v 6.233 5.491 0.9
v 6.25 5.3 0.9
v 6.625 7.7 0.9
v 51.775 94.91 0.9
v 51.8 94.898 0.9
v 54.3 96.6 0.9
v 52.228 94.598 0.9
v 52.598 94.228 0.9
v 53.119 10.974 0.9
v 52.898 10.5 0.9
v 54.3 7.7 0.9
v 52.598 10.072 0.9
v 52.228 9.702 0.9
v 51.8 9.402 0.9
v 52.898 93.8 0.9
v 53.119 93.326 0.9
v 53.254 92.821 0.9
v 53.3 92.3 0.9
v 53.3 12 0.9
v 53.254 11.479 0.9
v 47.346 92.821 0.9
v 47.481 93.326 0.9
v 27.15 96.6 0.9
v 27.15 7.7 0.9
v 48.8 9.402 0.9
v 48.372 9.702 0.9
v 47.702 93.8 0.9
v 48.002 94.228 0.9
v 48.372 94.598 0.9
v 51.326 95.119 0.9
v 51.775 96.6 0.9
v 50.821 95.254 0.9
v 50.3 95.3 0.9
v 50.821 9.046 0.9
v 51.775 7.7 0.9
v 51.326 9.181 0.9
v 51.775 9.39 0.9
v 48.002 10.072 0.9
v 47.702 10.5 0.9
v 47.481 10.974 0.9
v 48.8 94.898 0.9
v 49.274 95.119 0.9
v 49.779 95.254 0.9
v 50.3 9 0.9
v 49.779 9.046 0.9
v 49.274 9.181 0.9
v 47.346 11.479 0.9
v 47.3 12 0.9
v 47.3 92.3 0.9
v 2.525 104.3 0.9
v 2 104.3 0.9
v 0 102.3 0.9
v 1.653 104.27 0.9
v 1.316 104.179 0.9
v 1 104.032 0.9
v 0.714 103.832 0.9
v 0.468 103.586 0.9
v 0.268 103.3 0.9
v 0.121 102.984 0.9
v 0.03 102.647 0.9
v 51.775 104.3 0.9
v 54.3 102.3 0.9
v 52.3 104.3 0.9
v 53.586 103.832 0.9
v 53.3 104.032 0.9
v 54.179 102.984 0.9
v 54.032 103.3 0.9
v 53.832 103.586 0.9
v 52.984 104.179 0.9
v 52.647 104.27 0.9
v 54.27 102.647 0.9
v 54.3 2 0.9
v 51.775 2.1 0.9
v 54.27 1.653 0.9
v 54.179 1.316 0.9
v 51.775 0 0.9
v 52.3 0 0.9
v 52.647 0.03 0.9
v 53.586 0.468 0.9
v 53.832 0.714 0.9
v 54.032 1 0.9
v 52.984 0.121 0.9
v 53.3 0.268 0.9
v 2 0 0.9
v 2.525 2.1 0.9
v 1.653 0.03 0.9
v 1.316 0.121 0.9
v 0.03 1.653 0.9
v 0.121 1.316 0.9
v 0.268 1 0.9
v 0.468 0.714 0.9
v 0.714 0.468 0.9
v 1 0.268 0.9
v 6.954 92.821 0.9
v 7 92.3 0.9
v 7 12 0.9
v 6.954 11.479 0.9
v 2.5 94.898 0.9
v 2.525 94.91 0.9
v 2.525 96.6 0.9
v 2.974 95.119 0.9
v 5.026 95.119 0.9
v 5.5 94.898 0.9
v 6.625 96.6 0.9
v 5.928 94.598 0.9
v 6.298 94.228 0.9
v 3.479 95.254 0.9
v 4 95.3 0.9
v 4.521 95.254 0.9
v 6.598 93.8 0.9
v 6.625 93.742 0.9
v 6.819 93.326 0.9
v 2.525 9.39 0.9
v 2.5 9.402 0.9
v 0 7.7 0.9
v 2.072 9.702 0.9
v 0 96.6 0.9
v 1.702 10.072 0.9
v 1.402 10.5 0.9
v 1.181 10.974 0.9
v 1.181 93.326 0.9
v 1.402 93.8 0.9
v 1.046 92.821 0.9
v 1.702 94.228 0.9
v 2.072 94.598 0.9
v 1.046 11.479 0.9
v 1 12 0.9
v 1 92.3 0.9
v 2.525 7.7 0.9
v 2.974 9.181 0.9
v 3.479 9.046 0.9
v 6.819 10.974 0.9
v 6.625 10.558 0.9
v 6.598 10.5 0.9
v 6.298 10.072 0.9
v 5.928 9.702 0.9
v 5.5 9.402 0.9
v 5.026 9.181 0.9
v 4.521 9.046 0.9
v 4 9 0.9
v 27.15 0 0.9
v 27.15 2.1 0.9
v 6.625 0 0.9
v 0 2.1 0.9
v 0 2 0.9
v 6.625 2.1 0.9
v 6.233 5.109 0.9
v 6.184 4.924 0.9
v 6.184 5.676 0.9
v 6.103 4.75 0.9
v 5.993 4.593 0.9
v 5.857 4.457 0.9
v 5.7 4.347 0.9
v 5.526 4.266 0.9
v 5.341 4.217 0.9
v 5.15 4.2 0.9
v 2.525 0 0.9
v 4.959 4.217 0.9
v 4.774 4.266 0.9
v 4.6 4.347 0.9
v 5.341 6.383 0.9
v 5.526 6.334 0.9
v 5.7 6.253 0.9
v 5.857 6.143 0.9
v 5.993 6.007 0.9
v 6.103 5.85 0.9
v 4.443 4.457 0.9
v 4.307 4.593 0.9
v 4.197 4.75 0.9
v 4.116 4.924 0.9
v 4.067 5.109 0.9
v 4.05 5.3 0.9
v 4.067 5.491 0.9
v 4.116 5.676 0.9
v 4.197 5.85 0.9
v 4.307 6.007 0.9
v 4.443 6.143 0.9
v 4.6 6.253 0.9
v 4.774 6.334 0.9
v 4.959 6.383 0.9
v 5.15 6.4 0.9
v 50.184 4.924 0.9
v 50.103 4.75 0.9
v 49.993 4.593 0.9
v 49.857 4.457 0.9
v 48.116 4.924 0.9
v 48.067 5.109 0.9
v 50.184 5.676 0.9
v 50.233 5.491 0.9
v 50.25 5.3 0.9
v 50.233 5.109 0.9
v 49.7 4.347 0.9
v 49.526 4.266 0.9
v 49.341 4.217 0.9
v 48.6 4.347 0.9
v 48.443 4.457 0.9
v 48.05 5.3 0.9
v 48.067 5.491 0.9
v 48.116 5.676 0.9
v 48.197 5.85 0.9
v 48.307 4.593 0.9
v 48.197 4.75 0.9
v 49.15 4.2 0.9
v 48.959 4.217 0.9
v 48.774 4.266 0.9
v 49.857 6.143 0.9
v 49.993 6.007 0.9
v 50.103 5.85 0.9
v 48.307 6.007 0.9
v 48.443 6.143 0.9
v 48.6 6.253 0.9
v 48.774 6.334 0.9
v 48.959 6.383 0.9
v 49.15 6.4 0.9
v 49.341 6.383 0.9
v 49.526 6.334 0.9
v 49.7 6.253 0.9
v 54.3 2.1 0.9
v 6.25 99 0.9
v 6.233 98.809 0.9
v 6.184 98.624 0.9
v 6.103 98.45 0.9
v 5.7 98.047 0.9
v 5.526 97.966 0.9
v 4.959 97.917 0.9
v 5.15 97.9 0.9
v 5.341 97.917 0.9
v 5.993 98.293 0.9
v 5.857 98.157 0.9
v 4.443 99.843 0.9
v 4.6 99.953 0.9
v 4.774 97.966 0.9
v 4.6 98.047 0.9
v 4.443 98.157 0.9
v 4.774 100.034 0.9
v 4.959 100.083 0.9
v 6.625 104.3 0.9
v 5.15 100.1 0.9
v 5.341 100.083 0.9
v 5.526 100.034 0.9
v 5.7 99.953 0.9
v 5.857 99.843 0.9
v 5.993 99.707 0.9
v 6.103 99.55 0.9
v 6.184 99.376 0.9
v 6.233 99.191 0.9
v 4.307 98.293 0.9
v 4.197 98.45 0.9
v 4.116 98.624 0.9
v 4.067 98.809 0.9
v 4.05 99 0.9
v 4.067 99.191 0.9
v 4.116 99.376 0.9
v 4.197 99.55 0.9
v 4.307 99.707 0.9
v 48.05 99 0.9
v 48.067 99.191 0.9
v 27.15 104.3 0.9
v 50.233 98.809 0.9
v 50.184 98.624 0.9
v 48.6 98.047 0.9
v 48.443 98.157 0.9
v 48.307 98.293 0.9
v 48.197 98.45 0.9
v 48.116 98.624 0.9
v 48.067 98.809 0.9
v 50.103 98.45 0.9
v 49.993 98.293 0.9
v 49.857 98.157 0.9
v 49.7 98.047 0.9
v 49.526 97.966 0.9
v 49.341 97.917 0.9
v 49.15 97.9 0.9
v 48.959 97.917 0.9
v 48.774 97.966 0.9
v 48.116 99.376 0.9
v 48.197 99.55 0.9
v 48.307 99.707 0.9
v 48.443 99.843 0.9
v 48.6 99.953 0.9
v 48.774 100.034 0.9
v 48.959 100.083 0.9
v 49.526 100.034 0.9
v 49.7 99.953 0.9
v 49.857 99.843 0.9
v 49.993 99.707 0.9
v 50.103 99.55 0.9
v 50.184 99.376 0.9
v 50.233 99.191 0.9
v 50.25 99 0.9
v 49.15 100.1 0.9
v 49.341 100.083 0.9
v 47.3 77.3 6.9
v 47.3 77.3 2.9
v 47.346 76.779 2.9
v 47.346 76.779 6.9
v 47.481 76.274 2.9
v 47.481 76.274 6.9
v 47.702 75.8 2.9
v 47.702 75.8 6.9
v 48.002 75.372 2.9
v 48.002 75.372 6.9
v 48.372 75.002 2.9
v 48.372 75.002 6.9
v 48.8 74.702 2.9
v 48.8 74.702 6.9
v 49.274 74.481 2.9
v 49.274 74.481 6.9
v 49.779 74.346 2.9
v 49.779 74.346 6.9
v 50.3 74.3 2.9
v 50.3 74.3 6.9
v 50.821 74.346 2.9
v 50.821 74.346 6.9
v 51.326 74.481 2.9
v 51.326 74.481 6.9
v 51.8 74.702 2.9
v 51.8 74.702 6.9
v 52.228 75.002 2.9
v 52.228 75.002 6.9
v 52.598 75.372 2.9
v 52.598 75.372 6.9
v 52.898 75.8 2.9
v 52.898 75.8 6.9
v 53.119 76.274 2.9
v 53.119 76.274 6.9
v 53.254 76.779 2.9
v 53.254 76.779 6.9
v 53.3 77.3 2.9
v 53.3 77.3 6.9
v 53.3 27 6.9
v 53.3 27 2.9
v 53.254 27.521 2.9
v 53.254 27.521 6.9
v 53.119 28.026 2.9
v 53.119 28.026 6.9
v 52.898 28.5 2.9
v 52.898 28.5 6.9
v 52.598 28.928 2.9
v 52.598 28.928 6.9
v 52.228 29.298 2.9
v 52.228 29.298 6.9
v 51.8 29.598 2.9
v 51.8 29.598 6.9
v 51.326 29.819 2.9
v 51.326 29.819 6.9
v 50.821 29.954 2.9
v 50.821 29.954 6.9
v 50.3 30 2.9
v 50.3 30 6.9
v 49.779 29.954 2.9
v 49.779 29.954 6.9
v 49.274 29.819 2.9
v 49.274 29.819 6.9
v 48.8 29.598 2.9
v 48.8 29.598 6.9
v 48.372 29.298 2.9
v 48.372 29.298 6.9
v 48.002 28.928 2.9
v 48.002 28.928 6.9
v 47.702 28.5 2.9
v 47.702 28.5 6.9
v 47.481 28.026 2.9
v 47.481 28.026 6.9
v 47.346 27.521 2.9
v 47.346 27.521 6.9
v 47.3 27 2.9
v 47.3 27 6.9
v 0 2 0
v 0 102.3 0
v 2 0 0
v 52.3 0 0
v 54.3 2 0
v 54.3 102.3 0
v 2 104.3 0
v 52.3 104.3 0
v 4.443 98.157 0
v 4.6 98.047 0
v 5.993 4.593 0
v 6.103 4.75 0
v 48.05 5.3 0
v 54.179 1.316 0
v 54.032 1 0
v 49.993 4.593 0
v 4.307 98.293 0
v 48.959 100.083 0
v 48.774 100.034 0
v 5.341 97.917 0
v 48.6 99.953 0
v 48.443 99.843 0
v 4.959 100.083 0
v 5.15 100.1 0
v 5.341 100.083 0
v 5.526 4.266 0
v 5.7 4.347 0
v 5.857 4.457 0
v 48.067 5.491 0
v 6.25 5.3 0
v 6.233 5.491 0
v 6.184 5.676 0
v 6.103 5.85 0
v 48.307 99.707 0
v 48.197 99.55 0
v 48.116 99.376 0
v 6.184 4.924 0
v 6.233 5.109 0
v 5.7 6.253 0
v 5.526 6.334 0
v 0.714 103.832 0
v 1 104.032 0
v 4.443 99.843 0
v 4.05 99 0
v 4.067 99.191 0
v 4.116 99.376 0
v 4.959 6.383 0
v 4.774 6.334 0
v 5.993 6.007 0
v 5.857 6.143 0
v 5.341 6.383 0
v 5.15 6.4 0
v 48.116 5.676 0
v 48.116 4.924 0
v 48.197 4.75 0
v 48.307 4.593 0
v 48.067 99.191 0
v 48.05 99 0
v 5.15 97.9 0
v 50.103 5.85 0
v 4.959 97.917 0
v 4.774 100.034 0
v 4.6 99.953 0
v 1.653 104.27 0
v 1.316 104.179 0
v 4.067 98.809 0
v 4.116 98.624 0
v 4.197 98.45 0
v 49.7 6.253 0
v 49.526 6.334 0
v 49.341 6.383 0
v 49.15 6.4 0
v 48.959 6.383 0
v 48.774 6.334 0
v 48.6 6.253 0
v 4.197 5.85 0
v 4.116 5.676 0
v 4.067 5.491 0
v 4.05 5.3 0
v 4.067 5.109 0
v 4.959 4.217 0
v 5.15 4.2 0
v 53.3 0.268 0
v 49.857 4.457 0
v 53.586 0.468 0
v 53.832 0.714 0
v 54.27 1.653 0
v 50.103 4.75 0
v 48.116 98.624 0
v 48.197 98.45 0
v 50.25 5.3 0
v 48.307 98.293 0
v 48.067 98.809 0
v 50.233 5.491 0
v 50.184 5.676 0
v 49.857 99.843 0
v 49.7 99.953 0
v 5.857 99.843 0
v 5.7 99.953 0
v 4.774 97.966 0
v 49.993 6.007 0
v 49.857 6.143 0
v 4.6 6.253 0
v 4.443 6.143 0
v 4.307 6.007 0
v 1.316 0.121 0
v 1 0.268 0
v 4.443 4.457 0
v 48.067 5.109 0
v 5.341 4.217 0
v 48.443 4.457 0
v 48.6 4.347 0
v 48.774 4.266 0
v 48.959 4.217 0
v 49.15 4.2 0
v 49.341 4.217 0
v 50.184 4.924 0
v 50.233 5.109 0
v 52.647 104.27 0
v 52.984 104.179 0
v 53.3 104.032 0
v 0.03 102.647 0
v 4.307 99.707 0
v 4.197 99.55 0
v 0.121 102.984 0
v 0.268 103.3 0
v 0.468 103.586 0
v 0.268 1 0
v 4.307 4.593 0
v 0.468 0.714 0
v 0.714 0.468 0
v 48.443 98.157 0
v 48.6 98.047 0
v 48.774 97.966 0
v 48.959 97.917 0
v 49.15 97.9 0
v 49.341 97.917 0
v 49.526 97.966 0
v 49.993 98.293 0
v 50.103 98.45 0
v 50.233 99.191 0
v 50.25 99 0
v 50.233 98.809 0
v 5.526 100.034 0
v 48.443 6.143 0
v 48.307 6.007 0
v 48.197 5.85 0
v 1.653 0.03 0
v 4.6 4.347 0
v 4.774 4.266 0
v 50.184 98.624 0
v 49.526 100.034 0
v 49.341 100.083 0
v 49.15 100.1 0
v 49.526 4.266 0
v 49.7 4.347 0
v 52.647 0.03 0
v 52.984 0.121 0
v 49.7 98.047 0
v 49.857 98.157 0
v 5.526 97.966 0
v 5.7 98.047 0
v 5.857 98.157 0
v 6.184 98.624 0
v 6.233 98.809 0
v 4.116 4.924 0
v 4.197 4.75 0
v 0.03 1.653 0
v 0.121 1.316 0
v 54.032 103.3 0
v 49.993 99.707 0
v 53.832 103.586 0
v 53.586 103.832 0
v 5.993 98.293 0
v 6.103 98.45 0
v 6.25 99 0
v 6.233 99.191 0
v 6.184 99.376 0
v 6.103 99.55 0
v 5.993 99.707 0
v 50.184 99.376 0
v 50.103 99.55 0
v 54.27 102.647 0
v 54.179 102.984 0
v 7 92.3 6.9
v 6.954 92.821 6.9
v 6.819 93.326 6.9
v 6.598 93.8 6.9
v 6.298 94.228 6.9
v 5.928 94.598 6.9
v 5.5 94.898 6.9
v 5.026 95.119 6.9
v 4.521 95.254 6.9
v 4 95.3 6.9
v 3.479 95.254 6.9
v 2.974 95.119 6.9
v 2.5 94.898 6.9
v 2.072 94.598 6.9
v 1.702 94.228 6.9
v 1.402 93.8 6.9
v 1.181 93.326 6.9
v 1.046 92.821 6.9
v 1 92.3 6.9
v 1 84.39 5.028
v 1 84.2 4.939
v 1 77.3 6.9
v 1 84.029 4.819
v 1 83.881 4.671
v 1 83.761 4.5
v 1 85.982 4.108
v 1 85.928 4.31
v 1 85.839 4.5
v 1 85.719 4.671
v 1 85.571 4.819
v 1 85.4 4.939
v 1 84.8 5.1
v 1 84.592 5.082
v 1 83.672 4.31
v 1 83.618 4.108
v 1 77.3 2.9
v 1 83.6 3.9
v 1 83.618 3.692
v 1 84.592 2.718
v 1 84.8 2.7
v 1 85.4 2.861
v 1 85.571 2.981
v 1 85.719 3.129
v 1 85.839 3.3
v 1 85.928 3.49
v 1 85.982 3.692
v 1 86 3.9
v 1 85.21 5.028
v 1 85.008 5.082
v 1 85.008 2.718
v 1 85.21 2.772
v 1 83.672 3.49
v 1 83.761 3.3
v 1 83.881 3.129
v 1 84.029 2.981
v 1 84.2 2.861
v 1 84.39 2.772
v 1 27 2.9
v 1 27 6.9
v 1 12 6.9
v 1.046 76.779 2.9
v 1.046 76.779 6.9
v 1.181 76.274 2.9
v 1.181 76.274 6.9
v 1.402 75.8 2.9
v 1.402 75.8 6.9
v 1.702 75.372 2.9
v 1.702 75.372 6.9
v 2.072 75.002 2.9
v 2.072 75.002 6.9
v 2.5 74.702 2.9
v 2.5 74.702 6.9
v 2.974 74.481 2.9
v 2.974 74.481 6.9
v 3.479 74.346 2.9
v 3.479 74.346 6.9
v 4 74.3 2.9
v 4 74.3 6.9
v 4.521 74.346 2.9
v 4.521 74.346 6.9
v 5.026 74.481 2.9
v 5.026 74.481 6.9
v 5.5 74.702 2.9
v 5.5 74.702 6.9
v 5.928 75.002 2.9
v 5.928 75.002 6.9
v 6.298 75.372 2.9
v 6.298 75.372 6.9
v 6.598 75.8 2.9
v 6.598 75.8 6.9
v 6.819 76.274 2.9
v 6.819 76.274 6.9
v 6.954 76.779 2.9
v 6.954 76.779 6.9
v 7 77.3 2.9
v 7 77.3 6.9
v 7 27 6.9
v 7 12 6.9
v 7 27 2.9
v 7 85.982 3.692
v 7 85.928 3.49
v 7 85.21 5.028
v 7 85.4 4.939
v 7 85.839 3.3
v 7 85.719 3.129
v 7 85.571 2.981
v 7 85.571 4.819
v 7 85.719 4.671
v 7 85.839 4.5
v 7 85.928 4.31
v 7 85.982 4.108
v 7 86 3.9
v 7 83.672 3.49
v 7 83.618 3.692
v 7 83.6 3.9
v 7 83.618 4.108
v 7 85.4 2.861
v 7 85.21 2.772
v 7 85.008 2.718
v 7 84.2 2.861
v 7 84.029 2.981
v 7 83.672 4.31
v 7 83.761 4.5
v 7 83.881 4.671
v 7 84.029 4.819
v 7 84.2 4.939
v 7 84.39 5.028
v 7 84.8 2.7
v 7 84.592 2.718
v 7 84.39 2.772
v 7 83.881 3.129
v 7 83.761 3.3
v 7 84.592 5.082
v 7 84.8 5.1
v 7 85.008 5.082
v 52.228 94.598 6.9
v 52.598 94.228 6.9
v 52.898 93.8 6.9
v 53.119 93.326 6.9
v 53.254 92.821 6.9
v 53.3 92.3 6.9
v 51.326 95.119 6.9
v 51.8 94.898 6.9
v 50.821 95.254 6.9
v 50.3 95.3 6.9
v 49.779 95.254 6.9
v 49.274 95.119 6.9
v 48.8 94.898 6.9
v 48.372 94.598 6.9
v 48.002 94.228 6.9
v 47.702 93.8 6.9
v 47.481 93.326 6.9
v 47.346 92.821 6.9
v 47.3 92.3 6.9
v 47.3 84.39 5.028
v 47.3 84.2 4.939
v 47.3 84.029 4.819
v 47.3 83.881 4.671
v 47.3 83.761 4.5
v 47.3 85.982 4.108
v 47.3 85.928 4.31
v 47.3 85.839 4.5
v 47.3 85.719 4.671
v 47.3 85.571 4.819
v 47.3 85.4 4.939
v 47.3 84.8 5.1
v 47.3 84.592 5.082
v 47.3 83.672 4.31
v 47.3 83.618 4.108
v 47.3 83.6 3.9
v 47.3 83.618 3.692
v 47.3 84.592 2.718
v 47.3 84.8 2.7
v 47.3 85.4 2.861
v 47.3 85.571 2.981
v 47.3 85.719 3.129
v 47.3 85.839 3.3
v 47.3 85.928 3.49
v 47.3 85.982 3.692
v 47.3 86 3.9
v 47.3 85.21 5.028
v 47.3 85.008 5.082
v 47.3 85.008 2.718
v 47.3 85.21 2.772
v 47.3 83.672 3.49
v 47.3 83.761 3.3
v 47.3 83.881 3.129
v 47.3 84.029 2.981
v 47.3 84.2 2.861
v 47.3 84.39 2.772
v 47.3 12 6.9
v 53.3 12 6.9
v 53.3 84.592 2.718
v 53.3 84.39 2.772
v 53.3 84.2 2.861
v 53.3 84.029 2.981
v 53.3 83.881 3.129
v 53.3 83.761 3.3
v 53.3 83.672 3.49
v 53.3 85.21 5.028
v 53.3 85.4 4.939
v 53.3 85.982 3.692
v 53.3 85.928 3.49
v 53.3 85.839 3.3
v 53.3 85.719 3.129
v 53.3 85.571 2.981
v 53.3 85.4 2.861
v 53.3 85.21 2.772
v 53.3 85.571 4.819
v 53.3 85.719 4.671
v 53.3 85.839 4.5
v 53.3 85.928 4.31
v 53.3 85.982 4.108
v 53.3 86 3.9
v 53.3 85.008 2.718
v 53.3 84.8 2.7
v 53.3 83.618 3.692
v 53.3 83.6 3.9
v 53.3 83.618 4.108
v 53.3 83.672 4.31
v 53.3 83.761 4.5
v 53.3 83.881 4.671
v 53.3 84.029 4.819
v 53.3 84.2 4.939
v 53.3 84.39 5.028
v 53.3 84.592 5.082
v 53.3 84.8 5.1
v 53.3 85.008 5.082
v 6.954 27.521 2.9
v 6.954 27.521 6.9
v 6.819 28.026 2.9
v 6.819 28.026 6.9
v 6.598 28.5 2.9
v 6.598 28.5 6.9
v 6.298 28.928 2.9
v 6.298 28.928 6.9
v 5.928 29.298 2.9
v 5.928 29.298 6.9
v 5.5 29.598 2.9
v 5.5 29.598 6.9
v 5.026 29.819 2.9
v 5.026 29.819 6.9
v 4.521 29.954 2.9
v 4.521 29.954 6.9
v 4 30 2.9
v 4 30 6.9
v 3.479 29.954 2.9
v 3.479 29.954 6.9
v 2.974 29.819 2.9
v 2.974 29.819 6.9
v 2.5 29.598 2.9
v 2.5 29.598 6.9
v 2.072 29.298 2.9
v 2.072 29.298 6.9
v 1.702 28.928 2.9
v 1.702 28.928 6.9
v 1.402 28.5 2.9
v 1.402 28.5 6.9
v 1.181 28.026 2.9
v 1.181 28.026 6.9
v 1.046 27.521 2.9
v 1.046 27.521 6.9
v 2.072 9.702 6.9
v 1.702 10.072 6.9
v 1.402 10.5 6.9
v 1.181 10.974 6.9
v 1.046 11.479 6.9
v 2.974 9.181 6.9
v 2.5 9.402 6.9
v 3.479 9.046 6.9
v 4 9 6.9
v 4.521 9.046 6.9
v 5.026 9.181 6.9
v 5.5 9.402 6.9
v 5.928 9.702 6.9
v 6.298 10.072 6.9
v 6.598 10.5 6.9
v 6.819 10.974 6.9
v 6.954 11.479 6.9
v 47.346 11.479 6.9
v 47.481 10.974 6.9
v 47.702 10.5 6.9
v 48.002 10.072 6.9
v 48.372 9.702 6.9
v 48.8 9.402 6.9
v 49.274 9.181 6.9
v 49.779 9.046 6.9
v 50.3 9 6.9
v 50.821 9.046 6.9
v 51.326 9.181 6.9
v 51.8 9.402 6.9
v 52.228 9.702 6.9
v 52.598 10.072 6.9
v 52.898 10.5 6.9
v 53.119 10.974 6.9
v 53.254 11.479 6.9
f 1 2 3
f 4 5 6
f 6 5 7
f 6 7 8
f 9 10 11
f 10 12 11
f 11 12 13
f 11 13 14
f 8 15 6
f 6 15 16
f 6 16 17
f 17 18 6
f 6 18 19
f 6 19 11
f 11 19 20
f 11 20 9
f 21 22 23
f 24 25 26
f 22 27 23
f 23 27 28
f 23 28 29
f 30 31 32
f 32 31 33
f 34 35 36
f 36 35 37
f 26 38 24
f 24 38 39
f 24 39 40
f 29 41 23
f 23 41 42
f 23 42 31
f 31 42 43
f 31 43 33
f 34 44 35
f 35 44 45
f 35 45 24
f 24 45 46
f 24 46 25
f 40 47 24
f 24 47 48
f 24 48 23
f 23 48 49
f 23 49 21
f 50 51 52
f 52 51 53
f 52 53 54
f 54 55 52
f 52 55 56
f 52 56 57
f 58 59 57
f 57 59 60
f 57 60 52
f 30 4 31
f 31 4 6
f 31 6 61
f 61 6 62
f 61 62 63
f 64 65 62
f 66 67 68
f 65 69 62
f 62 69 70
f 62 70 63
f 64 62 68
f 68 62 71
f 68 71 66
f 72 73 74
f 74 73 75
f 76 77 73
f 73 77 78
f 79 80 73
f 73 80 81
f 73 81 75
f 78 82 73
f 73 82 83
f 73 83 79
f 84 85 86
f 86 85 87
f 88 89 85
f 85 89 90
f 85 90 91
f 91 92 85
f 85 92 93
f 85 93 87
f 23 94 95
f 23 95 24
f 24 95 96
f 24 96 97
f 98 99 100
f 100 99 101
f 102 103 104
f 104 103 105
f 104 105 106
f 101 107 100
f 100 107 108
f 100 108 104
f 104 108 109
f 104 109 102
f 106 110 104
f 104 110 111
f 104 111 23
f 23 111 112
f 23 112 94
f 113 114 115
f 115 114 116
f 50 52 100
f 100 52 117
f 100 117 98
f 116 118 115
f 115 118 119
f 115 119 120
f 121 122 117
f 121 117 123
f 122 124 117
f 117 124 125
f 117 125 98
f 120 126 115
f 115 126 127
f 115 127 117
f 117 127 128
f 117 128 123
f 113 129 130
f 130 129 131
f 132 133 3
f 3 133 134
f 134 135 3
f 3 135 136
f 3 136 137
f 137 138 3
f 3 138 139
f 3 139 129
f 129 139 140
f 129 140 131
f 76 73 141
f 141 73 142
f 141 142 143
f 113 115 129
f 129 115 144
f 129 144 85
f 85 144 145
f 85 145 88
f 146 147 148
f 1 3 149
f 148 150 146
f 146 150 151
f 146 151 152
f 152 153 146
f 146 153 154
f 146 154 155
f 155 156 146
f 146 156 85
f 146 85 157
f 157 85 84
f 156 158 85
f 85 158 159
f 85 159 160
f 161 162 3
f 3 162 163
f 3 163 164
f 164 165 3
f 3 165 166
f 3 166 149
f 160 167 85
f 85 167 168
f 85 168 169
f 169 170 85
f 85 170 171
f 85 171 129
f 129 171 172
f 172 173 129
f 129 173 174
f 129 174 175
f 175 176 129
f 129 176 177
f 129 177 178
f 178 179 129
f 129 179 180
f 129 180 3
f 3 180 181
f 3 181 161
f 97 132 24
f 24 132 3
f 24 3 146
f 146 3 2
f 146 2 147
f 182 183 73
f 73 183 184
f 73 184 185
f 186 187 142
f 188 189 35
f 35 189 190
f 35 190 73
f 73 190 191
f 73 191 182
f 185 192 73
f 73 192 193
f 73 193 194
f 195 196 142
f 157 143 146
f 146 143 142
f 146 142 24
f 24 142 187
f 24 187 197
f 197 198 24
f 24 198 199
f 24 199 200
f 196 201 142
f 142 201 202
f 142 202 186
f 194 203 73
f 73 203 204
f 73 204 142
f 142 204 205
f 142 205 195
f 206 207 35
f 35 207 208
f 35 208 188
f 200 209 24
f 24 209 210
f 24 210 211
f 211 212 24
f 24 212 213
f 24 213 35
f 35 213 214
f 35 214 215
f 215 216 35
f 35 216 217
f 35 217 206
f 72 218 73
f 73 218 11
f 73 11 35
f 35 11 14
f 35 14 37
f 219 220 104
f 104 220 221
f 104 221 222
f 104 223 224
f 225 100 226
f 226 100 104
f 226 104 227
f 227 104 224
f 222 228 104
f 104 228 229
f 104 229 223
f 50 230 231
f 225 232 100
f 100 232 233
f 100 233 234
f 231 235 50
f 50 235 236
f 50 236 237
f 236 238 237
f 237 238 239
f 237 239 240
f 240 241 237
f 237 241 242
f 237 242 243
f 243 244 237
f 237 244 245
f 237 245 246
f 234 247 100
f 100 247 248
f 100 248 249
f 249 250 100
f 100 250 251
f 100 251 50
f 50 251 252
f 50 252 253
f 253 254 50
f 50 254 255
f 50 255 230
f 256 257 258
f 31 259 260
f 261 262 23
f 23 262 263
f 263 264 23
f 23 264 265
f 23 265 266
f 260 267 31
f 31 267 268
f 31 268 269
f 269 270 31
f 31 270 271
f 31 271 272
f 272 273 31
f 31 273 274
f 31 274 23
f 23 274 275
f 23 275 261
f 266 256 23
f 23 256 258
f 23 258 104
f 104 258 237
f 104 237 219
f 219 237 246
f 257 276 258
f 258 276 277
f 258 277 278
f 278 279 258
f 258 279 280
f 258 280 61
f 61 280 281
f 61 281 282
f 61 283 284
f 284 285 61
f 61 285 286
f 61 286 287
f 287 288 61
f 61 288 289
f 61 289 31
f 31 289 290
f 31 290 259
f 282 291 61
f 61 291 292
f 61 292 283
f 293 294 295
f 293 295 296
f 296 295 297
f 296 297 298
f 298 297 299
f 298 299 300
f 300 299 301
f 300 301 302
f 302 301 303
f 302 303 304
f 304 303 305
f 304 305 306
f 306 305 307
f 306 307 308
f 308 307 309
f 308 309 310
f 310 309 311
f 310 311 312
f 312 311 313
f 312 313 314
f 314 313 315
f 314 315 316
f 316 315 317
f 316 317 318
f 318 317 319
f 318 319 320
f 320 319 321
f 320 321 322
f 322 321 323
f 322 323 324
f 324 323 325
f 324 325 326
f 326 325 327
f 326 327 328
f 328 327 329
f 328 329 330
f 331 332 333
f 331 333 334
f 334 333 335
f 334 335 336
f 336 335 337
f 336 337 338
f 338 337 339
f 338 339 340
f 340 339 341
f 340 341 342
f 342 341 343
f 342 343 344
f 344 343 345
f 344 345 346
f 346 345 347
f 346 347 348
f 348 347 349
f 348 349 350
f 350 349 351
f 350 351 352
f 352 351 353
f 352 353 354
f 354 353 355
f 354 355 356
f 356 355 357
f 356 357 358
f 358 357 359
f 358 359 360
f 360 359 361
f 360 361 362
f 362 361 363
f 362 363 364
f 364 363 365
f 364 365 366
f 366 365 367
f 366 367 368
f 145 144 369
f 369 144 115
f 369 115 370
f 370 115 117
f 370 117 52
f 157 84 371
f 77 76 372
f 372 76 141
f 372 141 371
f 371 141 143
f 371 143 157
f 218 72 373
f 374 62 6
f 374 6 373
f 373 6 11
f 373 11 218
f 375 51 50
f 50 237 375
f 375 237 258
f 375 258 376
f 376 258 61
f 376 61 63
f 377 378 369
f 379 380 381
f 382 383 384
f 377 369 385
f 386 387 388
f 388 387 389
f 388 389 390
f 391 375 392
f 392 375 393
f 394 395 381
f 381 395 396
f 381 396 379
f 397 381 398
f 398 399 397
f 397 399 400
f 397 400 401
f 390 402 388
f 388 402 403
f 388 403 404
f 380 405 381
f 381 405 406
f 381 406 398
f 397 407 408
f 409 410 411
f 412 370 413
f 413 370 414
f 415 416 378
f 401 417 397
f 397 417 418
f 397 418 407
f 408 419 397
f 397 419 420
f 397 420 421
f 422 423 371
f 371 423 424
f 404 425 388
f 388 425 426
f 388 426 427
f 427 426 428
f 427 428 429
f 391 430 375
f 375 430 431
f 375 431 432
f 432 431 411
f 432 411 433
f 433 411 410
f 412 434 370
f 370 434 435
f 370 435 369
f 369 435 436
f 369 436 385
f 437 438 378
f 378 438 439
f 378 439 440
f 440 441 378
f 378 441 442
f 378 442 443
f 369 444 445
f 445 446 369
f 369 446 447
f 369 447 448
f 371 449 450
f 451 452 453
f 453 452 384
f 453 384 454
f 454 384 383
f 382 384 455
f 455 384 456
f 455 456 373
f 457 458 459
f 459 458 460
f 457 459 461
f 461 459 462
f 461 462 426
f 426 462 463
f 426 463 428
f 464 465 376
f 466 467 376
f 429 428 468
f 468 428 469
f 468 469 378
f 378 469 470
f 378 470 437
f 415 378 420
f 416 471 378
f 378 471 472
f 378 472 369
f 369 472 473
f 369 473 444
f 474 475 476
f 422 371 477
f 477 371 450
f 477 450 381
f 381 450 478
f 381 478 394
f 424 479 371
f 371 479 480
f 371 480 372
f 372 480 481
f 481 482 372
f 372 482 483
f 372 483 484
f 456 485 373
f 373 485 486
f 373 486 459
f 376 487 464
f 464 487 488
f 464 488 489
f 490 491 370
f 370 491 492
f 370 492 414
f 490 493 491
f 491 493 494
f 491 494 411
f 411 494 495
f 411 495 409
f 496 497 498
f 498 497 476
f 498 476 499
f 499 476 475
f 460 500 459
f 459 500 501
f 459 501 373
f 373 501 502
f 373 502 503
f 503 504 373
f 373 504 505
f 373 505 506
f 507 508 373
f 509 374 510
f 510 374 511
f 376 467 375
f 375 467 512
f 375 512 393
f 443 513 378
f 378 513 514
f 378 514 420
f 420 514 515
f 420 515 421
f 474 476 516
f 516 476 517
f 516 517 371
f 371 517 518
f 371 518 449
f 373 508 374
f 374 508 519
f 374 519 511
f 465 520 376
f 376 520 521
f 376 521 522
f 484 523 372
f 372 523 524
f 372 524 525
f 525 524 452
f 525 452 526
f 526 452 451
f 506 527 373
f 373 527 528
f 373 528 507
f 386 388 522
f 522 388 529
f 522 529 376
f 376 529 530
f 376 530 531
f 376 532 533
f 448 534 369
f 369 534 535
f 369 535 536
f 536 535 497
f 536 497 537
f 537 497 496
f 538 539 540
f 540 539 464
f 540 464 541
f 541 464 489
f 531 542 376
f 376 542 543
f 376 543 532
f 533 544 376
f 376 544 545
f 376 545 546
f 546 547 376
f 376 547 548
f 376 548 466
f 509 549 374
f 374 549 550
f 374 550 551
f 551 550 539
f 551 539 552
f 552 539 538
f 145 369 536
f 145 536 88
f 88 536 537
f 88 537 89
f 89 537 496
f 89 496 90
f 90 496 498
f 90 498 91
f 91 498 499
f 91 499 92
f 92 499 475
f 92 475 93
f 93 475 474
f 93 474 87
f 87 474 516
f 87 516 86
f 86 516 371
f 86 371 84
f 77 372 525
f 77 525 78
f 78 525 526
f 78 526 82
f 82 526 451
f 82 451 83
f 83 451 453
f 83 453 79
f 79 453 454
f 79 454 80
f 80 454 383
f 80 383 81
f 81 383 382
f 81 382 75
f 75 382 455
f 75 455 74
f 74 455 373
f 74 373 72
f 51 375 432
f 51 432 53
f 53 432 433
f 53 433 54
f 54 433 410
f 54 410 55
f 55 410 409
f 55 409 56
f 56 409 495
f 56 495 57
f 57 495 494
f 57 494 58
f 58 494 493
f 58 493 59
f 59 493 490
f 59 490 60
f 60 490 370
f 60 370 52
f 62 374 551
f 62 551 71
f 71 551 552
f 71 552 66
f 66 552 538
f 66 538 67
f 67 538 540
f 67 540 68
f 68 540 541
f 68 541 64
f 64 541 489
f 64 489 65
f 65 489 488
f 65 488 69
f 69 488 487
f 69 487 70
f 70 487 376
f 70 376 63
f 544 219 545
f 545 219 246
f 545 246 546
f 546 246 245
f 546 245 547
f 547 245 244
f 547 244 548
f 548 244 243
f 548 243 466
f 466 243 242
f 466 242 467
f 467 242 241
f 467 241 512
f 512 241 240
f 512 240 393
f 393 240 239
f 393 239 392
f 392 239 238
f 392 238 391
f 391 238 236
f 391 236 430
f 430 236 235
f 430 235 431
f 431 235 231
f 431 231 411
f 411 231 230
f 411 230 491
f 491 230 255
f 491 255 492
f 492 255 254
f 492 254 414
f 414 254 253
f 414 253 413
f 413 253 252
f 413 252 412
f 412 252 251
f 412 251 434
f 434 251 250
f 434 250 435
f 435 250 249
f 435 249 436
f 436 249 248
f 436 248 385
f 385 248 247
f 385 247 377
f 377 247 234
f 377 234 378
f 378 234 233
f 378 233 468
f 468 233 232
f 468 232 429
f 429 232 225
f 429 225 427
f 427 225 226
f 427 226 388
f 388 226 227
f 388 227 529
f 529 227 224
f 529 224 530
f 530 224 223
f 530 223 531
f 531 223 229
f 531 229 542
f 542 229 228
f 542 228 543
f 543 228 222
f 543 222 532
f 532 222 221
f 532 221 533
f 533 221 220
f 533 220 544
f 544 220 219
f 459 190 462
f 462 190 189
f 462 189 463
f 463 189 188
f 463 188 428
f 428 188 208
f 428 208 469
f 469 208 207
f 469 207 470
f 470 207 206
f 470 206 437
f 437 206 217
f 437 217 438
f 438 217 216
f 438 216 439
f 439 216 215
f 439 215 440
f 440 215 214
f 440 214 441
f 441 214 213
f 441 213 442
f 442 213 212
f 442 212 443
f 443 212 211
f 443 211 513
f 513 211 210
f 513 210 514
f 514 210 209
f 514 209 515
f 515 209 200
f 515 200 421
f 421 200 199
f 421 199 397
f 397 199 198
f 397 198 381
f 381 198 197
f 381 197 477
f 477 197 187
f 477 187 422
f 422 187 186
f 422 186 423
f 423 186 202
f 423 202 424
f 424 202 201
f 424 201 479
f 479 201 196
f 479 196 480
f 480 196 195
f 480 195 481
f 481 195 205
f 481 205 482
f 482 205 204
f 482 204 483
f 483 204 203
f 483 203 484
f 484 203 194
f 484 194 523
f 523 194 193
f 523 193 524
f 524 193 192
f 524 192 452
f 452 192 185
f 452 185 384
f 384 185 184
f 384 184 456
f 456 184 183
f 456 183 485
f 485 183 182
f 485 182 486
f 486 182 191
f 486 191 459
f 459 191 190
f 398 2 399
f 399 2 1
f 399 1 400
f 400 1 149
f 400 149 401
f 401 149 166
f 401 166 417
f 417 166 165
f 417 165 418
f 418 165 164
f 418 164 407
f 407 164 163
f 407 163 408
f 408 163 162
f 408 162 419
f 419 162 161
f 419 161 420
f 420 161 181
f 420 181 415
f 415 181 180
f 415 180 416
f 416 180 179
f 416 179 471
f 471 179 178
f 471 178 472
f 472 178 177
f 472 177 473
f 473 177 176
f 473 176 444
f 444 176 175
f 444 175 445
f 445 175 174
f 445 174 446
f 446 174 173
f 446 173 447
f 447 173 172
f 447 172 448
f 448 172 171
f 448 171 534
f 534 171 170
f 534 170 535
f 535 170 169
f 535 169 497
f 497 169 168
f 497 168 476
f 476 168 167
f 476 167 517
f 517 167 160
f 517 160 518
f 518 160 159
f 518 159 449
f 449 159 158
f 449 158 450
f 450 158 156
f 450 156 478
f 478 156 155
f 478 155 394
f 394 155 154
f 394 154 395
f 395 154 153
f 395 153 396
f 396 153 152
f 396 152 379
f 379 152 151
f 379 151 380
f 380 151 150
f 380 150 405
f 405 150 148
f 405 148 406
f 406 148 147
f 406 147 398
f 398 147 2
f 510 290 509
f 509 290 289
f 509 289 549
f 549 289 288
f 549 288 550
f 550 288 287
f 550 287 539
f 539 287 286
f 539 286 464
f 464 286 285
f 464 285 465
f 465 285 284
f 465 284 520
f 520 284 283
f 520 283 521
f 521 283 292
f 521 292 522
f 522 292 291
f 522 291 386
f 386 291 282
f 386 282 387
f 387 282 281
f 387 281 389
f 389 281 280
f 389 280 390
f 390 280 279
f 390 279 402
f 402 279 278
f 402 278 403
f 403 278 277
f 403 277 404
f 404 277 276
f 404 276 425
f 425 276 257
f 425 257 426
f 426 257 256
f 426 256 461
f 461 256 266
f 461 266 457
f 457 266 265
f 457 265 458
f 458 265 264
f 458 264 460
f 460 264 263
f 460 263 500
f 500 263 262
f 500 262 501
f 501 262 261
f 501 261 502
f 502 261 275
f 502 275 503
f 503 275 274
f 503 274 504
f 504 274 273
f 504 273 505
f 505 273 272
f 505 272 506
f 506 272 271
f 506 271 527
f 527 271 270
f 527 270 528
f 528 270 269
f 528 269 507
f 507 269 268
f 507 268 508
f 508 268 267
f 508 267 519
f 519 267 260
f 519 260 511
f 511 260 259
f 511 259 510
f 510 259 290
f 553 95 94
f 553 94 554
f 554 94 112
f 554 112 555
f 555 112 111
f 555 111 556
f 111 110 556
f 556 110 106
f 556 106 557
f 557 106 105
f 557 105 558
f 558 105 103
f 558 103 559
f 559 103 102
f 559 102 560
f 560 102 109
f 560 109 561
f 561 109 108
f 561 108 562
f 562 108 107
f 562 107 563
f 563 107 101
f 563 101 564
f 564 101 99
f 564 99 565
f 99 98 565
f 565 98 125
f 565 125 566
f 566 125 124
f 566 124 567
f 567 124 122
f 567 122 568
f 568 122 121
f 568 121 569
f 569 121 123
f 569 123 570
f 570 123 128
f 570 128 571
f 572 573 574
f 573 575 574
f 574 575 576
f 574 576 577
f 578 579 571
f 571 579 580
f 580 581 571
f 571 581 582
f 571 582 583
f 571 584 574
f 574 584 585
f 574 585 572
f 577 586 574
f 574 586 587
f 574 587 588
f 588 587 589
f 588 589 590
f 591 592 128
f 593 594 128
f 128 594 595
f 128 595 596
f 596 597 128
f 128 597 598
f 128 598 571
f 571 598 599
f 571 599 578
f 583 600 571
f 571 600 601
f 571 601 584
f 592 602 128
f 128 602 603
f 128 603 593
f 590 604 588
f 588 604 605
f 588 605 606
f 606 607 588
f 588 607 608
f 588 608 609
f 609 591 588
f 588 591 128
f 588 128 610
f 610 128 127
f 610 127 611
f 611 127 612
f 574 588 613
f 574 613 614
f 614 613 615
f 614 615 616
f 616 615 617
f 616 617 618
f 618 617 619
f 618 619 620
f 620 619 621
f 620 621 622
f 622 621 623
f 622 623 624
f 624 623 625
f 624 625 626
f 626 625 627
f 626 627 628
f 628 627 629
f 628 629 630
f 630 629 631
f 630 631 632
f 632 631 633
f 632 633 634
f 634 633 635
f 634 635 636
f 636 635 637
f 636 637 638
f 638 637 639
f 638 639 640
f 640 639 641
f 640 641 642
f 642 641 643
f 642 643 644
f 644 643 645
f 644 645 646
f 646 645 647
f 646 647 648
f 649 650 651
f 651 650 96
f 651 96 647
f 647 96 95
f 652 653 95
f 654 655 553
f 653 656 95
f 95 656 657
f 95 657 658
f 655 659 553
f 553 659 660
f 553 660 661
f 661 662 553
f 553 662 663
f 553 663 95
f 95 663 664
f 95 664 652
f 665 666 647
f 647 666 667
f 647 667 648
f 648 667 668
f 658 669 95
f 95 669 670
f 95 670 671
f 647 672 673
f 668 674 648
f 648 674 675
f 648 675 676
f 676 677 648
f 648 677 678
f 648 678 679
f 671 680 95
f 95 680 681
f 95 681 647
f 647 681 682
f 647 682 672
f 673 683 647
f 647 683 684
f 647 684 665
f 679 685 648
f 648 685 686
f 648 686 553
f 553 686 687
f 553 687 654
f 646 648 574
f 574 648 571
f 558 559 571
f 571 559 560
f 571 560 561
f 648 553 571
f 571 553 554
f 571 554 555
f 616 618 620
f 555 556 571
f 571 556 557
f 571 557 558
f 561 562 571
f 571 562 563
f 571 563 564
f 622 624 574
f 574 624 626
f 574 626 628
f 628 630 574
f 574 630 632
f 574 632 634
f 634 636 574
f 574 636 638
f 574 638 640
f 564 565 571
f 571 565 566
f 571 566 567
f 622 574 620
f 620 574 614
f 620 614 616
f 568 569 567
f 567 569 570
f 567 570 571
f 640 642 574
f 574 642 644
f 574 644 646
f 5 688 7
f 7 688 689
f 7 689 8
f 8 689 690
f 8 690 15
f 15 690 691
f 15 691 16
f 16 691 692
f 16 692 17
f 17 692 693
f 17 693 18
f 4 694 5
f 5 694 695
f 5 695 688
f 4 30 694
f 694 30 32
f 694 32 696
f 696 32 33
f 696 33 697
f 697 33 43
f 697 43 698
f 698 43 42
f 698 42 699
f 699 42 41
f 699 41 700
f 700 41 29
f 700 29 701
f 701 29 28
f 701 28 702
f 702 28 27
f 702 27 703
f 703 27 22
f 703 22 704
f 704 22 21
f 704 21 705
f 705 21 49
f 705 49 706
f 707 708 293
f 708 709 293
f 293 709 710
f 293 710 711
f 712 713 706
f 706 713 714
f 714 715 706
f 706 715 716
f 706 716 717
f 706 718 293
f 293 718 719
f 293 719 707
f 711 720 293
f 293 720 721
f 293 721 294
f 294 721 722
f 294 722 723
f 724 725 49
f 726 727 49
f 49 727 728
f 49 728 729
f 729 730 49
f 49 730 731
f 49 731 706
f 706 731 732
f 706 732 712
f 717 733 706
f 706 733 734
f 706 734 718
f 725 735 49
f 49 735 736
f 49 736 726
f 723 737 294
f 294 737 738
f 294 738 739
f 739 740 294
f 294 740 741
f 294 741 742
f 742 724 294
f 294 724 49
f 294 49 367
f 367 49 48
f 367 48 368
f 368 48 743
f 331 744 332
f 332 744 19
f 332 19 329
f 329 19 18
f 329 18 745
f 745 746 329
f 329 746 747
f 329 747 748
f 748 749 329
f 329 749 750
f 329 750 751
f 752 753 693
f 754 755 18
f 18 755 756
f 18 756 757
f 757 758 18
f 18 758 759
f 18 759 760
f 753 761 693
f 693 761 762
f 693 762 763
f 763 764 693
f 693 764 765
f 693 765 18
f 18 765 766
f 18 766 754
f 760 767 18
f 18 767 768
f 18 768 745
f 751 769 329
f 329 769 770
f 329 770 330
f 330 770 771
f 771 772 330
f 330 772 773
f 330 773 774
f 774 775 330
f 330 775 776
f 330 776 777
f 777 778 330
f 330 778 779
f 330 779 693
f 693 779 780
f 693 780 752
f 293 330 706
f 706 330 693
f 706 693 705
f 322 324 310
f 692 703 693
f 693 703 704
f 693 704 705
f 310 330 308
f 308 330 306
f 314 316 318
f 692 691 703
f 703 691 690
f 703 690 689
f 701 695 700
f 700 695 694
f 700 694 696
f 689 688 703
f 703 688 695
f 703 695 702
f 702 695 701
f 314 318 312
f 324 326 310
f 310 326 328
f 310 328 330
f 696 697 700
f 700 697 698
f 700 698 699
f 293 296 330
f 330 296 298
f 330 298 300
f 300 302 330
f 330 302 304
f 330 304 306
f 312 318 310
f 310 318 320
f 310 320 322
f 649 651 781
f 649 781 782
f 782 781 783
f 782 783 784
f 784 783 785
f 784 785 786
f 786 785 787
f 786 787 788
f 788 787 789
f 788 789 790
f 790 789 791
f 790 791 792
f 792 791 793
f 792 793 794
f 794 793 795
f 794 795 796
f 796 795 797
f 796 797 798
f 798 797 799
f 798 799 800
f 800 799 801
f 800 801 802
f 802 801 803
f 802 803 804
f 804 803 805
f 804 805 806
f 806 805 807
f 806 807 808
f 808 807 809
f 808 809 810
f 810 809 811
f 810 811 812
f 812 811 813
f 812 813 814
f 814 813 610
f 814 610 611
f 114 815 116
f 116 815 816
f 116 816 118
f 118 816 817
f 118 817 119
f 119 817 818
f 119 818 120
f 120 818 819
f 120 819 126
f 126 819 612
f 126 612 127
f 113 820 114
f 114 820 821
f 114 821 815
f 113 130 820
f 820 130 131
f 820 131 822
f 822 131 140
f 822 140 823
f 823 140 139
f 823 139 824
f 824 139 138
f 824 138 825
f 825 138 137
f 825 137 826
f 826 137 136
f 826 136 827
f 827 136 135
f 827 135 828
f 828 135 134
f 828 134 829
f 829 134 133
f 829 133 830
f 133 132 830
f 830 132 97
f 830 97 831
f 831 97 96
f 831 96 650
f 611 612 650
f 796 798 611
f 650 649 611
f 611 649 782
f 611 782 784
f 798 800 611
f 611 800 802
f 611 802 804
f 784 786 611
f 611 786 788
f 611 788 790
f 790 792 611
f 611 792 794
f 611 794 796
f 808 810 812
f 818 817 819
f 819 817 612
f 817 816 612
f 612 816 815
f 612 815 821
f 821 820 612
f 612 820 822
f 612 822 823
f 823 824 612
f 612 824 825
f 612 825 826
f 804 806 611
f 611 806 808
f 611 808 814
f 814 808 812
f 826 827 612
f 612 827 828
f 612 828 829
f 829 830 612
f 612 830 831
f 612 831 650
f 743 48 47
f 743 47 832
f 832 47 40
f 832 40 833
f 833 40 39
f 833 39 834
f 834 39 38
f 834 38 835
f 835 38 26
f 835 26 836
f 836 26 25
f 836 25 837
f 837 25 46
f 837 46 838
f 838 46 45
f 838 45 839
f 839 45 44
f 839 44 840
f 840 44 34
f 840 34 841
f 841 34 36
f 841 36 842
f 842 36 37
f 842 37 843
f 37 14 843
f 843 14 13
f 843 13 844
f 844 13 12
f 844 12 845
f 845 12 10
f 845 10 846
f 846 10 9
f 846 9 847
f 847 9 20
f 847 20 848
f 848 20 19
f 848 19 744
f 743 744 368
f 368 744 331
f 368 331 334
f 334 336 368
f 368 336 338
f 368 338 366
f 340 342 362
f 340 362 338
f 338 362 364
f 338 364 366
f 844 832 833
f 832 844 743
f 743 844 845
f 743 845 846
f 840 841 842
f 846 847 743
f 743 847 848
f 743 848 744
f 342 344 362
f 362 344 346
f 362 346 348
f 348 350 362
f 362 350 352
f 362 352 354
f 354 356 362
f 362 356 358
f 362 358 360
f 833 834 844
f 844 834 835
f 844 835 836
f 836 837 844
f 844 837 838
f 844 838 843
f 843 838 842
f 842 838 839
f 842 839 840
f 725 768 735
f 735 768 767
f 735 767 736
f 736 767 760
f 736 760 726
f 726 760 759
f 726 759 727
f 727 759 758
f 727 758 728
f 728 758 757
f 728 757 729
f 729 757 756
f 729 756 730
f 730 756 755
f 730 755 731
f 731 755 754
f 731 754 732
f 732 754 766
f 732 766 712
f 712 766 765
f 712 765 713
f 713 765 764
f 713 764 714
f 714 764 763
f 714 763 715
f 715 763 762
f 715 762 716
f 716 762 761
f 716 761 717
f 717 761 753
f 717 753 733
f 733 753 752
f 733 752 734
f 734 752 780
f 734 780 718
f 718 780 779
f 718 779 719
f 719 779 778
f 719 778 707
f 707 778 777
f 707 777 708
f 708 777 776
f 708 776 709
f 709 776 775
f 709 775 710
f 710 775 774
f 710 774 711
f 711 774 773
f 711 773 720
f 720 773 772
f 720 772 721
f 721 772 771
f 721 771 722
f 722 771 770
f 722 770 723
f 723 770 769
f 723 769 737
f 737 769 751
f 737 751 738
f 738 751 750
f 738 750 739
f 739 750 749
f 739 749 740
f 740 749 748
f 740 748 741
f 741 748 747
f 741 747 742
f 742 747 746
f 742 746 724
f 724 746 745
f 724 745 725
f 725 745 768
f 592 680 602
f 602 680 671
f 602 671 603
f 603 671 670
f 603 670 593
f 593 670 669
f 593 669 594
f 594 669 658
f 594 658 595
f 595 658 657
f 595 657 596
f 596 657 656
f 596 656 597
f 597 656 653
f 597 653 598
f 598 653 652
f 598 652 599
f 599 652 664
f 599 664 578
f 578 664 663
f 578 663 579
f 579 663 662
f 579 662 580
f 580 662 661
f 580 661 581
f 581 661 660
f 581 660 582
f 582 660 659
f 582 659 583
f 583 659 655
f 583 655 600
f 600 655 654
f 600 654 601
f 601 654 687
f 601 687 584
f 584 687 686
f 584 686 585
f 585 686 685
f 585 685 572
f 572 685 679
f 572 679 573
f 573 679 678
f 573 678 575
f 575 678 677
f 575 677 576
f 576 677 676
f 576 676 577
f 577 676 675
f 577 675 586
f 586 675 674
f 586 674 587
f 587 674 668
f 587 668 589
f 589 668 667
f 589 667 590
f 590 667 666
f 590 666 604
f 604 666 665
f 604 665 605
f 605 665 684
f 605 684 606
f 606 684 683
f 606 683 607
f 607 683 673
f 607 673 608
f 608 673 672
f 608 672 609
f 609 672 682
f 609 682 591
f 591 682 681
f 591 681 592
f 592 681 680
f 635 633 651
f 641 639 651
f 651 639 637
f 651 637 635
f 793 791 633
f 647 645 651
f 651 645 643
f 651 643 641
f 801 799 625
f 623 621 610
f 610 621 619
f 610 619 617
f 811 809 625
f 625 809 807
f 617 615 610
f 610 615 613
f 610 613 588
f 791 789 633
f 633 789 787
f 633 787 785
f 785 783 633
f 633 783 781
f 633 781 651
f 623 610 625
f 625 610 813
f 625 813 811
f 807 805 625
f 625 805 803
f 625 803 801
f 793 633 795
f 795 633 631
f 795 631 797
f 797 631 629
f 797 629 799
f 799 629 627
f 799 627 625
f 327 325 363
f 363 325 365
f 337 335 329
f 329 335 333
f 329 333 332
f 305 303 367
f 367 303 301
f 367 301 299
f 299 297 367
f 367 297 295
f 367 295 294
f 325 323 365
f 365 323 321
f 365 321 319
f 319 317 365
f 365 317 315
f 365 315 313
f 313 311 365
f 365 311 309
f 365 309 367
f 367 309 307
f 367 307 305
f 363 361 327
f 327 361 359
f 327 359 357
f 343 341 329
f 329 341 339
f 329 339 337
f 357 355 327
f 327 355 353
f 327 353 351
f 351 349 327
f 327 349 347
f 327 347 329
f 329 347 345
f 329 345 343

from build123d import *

# Parameters (mm, degrees)
SKICA1_W                      = 54.3
SKICA1_H                      = 104.3
P_IDAT_VYSUNUT_M1_DEPTH       = 0.9
ZAOBLIT1_R                    = 2
SKICA2_R                      = 1.1
ODEBRAT_VYSUNUT_M1_DEPTH      = 0.9
P_IDAT_VYSUNUT_M2_DEPTH       = 6
ODEBRAT_VYSUNUT_M2_DEPTH      = 118.332817234
ODEBRAT_VYSUNUT_M2_DEPTH_BACK = 118.332817234
SKICA4_R                      = 1.2
SKICA5_W                      = 6
SKICA5_H                      = 50.3
P_IDAT_VYSUNUT_M3_DEPTH       = 2


with BuildPart() as part:
    # Skica1 → Přidat vysunutím1 (new body)
    with BuildSketch(Plane.XY):
        with Locations((27.15, 52.15)):
            Rectangle(SKICA1_W, SKICA1_H)
    extrude(amount=P_IDAT_VYSUNUT_M1_DEPTH)

    # Zaoblit1
    zaoblit1_edges = [part.edges().sort_by_distance(p)[0] for p in [
        (0, 104.3, 0.45),
        (54.3, 104.3, 0.45),
        (54.3, 0, 0.45),
        (0, 0, 0.45),
    ]]
    fillet(zaoblit1_edges, radius=ZAOBLIT1_R)

    # Skica2 → Odebrat vysunutím1 (cut)
    with BuildSketch(Plane.XY.offset(0.9)):
        with Locations((5.15, 99)):
            Circle(SKICA2_R)
        with Locations((49.15, 99)):
            Circle(SKICA2_R)
        with Locations((5.15, 5.3)):
            Circle(SKICA2_R)
        with Locations((49.15, 5.3)):
            Circle(SKICA2_R)
    extrude(amount=-ODEBRAT_VYSUNUT_M1_DEPTH, mode=Mode.SUBTRACT)

    # Skica3 → Přidat vysunutím2 (add)
    with BuildSketch(Plane.XY.offset(0.9)):
        with BuildLine():
            Line((7, 92.3), (7, 77.3))
            ThreePointArc((7, 77.3), (4, 74.3), (1, 77.3))
            Line((1, 77.3), (1, 92.3))
            ThreePointArc((1, 92.3), (4, 95.3), (7, 92.3))
        make_face()
        with BuildLine():
            Line((53.3, 92.3), (53.3, 77.3))
            ThreePointArc((53.3, 77.3), (50.3, 74.3), (47.3, 77.3))
            Line((47.3, 77.3), (47.3, 92.3))
            ThreePointArc((47.3, 92.3), (50.3, 95.3), (53.3, 92.3))
        make_face()
        with BuildLine():
            Line((7, 27), (7, 12))
            ThreePointArc((7, 12), (4, 9), (1, 12))
            Line((1, 12), (1, 27))
            ThreePointArc((1, 27), (4, 30), (7, 27))
        make_face()
        with BuildLine():
            Line((53.3, 27), (53.3, 12))
            ThreePointArc((53.3, 12), (50.3, 9), (47.3, 12))
            Line((47.3, 12), (47.3, 27))
            ThreePointArc((47.3, 27), (50.3, 30), (53.3, 27))
        make_face()
    extrude(amount=P_IDAT_VYSUNUT_M2_DEPTH)

    # Skica4 → Odebrat vysunutím2 (cut, two sides: drawn at the far end of the back side and taken through both)
    with BuildSketch(Plane(origin=(53.3, 0, 0), x_dir=(0, 0, -1), z_dir=(1, 0, 0)).offset(-ODEBRAT_VYSUNUT_M2_DEPTH_BACK)):
        with Locations((-3.9, 84.8)):
            Circle(SKICA4_R)
    extrude(amount=ODEBRAT_VYSUNUT_M2_DEPTH + ODEBRAT_VYSUNUT_M2_DEPTH_BACK, mode=Mode.SUBTRACT)

    # Skica5 → Přidat vysunutím3 (add)
    with BuildSketch(Plane.XY.offset(0.9)):
        with Locations((4, 52.15)):
            Rectangle(SKICA5_W, SKICA5_H)
        with Locations((50.3, 52.15)):
            Rectangle(SKICA5_W, SKICA5_H)
    extrude(amount=P_IDAT_VYSUNUT_M3_DEPTH)


solid = part.part
